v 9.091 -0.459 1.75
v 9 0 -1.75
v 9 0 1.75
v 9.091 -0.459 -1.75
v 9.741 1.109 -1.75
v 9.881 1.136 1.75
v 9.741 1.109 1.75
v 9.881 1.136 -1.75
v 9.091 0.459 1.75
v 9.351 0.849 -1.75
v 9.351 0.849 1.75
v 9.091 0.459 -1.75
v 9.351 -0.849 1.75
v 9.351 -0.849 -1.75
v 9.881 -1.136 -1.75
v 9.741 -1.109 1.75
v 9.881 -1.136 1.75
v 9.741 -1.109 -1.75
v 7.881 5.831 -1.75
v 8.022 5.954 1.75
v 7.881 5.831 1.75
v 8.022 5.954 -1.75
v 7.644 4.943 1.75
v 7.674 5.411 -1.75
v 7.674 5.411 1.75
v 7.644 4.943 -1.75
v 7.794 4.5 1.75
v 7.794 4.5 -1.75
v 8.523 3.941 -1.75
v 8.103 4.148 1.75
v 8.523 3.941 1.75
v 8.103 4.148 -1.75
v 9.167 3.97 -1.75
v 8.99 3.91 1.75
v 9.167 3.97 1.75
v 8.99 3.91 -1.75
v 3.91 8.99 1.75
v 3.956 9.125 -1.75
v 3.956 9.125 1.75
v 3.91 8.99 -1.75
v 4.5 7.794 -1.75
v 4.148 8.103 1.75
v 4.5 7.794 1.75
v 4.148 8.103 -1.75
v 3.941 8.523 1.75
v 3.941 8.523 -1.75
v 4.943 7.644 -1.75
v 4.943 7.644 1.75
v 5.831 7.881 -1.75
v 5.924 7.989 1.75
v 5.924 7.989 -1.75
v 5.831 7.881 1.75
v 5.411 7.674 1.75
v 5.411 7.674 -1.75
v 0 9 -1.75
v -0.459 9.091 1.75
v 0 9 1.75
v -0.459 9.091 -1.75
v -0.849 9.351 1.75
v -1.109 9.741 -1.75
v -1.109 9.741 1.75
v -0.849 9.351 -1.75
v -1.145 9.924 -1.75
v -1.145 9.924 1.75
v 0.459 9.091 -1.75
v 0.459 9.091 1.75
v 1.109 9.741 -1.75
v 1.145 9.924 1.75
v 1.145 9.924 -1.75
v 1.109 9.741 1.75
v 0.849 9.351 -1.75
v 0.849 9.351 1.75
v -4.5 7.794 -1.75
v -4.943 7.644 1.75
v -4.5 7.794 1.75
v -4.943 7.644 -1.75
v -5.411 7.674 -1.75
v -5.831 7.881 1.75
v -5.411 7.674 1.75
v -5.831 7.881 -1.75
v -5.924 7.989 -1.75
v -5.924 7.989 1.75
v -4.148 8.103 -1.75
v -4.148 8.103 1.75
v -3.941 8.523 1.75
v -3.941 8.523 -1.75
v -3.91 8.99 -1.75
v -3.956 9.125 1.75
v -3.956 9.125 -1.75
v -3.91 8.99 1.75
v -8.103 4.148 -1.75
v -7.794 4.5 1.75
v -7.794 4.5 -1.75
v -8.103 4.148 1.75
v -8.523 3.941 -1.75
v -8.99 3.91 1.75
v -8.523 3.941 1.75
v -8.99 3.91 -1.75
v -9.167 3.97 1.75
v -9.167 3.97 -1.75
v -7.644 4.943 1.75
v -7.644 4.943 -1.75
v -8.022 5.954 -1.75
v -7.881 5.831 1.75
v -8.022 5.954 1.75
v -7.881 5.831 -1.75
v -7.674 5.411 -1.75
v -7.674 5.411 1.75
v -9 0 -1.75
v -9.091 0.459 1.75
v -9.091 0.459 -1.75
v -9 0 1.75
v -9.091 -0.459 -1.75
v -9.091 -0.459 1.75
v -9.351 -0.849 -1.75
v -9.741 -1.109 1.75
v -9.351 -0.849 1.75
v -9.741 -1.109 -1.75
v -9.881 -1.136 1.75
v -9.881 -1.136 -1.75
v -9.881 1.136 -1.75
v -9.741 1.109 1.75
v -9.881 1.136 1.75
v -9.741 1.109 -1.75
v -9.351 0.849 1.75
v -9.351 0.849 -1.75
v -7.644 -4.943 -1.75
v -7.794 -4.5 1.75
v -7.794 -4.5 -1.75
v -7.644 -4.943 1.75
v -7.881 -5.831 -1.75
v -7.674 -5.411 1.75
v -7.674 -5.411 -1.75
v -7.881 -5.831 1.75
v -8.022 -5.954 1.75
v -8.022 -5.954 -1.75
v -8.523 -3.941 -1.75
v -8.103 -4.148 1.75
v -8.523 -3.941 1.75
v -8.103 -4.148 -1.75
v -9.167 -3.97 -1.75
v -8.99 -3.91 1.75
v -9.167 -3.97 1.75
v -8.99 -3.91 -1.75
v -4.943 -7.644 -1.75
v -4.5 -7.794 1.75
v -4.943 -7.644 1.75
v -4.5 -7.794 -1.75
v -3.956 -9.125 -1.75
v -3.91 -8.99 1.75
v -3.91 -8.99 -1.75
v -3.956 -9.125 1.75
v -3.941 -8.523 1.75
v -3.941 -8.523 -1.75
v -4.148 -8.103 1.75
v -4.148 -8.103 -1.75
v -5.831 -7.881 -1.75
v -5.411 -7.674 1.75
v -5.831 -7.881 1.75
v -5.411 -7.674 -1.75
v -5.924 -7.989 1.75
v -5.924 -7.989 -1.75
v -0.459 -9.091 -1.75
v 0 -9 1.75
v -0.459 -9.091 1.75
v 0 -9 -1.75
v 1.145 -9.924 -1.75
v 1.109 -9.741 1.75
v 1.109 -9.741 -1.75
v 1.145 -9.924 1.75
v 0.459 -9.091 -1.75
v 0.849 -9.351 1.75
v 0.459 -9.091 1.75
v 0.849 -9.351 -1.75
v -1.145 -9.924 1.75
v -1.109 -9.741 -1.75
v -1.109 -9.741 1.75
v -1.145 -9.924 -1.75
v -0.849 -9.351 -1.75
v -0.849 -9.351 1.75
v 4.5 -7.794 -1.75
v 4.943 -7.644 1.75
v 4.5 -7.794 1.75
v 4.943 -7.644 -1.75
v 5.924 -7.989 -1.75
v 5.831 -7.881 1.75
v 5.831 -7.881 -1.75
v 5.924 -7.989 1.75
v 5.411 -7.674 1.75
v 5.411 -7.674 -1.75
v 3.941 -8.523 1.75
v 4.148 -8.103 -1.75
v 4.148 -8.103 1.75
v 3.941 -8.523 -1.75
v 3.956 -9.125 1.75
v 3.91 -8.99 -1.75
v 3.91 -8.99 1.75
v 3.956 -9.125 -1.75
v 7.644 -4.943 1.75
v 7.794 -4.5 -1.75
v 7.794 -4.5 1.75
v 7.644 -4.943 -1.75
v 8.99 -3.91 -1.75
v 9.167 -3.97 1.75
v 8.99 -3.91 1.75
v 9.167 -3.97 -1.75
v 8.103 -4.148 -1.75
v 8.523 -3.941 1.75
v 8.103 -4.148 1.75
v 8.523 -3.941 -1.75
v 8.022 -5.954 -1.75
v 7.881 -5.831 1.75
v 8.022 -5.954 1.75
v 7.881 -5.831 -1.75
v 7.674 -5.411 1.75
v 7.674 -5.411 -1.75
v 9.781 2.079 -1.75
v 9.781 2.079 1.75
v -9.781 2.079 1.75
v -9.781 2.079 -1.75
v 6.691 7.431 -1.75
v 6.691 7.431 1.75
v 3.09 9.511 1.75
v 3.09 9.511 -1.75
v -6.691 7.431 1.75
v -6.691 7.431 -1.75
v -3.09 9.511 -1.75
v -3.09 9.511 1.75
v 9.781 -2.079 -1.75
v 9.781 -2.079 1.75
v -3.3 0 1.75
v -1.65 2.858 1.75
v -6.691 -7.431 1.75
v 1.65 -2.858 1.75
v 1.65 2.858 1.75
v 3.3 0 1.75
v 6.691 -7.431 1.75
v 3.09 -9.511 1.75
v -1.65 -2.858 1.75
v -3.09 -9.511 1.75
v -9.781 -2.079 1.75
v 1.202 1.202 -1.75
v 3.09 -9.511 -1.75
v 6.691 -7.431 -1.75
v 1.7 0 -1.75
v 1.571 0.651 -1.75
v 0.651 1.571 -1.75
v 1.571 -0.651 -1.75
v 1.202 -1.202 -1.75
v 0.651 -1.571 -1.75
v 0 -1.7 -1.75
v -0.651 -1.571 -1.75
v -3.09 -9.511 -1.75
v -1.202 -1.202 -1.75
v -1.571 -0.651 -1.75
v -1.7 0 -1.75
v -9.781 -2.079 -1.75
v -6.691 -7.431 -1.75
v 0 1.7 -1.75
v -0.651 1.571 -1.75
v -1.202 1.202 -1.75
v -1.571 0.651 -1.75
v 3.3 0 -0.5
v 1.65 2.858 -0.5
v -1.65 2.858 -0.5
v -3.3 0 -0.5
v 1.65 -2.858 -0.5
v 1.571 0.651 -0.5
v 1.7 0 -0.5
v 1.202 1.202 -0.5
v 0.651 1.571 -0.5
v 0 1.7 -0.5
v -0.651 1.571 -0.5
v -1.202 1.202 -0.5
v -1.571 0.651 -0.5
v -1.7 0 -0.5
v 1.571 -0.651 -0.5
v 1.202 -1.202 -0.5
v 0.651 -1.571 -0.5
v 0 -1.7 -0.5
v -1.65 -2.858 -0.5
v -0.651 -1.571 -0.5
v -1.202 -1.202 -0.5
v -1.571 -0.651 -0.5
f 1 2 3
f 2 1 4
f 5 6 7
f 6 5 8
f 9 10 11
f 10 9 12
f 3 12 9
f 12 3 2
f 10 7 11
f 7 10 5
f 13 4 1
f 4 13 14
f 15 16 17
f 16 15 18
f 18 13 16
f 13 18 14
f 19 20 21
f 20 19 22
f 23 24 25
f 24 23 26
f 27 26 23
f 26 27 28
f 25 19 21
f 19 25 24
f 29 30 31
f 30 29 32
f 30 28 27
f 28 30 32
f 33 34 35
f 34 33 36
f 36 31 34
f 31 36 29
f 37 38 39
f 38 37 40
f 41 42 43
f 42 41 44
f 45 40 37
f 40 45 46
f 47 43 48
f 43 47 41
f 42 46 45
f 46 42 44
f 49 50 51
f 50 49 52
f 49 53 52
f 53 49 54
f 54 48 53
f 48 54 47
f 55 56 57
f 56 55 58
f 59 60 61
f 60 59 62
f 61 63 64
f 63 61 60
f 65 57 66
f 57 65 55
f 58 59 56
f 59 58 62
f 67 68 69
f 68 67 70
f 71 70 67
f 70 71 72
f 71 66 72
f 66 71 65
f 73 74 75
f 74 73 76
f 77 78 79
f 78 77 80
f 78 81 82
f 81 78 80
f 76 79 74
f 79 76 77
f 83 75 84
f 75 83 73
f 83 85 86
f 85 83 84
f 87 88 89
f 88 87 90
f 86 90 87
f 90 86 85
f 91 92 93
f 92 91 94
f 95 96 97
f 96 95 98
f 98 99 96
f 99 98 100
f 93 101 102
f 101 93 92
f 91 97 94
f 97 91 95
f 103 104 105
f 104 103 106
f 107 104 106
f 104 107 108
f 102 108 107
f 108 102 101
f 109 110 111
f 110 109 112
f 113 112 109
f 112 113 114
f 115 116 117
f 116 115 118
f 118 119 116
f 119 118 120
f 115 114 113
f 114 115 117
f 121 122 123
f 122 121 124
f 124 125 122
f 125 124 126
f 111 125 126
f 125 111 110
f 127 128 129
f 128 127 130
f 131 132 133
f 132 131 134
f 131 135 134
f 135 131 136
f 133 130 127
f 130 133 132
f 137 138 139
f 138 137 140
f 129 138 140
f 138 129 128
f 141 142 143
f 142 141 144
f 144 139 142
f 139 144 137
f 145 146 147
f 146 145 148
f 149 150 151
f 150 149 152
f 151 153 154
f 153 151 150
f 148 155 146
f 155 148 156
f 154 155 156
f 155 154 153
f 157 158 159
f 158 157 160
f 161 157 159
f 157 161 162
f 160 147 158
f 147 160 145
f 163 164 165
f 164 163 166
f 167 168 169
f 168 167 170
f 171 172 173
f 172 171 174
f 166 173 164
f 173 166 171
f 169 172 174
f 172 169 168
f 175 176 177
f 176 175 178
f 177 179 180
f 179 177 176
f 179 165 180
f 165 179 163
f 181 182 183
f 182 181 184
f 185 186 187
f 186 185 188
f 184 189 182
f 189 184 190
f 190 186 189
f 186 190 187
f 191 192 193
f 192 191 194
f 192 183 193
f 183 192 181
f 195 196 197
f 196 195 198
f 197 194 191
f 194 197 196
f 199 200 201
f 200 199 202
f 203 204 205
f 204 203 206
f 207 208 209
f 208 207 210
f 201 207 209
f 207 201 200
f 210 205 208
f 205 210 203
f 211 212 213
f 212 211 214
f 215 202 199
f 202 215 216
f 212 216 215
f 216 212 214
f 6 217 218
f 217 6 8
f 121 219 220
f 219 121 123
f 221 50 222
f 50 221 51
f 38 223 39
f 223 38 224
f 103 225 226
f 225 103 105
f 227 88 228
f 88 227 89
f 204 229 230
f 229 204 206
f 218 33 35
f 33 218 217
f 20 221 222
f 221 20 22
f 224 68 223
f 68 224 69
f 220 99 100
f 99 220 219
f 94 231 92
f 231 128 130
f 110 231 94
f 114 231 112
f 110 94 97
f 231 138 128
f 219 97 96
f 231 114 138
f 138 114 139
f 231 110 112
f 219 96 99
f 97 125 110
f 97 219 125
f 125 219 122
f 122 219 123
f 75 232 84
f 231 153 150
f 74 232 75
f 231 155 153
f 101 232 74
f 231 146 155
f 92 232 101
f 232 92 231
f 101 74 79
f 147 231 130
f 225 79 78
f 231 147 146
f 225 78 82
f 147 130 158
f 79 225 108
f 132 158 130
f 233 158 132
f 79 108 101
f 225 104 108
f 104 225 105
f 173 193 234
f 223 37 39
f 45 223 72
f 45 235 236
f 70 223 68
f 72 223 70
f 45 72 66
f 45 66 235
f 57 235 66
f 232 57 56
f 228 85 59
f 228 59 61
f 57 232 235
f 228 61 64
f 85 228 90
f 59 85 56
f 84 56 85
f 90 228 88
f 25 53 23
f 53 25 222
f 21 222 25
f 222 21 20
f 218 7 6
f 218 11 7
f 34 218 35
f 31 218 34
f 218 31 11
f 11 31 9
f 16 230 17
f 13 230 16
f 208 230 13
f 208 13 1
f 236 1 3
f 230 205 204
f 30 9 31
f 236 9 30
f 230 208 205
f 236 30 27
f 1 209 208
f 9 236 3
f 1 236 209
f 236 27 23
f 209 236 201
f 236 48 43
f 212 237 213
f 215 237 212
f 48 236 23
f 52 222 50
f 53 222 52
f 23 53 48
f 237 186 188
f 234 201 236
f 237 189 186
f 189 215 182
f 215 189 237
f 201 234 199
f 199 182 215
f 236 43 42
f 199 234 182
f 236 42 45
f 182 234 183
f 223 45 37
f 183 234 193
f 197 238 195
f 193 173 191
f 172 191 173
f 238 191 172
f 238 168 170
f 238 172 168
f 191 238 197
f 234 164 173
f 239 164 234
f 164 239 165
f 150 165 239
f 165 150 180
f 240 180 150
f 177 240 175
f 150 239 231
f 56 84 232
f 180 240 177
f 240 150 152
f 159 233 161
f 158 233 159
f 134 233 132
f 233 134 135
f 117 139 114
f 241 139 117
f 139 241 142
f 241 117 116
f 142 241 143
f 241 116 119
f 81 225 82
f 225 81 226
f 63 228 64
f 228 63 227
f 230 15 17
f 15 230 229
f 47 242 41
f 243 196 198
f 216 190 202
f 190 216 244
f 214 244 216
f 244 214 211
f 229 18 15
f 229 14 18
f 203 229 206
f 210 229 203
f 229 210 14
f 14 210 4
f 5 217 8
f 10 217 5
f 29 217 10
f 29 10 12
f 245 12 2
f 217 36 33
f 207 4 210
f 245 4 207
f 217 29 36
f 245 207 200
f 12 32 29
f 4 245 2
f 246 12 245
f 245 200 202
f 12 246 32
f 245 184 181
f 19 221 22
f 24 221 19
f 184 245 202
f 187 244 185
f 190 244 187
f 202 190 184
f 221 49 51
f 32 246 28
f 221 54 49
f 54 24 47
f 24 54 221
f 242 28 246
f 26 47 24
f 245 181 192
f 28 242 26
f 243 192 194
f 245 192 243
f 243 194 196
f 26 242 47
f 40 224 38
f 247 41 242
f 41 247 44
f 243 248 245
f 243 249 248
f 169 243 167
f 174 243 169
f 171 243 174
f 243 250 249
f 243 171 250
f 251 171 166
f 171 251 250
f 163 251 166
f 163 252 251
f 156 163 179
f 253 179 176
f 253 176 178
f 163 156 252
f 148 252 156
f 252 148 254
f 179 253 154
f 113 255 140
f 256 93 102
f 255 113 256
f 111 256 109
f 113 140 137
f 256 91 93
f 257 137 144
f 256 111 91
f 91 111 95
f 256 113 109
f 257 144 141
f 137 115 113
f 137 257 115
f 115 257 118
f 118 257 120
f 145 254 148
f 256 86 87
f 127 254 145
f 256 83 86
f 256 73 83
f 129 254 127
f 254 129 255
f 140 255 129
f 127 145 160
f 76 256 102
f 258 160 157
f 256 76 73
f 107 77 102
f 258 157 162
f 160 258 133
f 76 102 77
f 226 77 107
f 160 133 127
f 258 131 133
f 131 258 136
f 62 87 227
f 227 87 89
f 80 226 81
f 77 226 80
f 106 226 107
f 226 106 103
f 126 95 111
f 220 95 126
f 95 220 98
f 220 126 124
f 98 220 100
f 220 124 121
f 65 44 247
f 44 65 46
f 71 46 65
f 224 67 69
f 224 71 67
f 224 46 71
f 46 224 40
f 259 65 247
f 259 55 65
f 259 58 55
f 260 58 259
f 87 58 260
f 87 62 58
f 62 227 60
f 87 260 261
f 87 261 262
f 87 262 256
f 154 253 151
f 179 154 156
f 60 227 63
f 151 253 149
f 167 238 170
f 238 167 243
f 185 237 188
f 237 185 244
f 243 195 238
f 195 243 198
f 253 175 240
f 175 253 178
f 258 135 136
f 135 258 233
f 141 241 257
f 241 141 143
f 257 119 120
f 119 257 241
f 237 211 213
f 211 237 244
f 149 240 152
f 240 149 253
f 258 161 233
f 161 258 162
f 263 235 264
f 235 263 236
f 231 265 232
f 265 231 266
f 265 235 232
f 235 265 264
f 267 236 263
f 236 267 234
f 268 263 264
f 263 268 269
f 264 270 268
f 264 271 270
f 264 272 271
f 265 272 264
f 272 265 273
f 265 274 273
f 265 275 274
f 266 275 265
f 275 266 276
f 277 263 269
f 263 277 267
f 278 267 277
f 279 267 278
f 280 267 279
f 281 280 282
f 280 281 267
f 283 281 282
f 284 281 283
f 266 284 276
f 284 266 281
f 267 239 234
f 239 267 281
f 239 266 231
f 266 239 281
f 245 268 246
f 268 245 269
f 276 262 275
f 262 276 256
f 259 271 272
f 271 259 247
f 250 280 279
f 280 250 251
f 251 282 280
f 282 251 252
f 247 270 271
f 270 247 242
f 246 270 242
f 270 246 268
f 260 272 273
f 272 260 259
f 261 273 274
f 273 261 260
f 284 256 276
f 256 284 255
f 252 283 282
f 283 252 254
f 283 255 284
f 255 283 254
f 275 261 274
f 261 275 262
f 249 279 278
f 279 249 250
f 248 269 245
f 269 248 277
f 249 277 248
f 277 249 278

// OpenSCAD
// file: ../configuration.scad
/*
	Konfiguracni soubor 3D tiskarny RebeliX X2
	
	Sledujte nas na:		  
			www.RepRap4U.cz
			www.facebook.com/RebeliX.cz
			https://twitter.com/reprap4u
			https://plus.google.com/+Reprap4uCz-3Dtiskarna-RebeliX
*/

/*================ Slic3r nastaveni ==========================*/

// Vyska vrstvy pro tisknuti dilu [mm]
layer_height = 0.3;

// Sirka vytlacovaneho materialu [mm]
extrusion_width = 0.66; //Slic3r->Print Settings->Advanced->Default extrusion width

/*==================== M6 sroub ==============================*/

// Rezerva prumeru hlavy sroubu [mm]
space = 1;

// Prumer hlavy M6 sroubu (pricte se rezerva) [mm]
M6_head_diameter = 10.6+space;
//M6_head_diameter = 12+space;

// Prumer M6 sroubu
M6_dia = 6.3;

// Vyska hlavy M6 sroubu (dulezite pro zapusteni hlavy sroubu do plastu) [mm]
M6_head_height = 3.6;
//M6_head_height = 4.5;

// Delka sroubu M6 [mm]
// M6x12
M6_lenght = 12;

// Sirka matky do profilu (pokud neni pouzita, tak 0)
//profile_nut_width = 9.5;
profile_nut_width = 0;

/*=================== Nastaveni dilu =========================*/

// Posun Z zakladny
z_base_offset = 11;

// Tloustka rohovych spojek
// 5 mm => sroub M6x14 s podlozkou
// 3 mm => sroub M6x12 s podlozkou
coupler_thickness = 3;

// Prumer 8mm tyce
rod_8mm_d = 8.2;

// Posun drzacku mezi x-motor a x-end
x_holder_position = 6.5;

// ALU profile hole width
alu_hole_width = 8;

/*======================== Motory ============================*/

// Delka motoru (ovlivni dily a delky tyci pro osy Z a Y)
//SX17-1003LQFE (doporuceno hlavne na osu Z)
motor_length = 29.5;
//SX17-1003 (doporuceno hlavne na osu Z), SX17-0503LQEF
//motor_length = 34;
//SX17-1005
//motor_length = 40;
//SX17-0905 - zde je jiz problem s velkou vyskou motoru na ose Z - musi se upravit endstop-holder
//motor_length = 48;

/*================ Remeny a remenicky ========================*/

// GT2 
belt_tooth_distance = 2;
belt_tooth_ratio = 0.5;

// T2.5
//belt_tooth_distance = 2.5;
//belt_tooth_ratio = 0.68;
// main file
// RebeliX
//
// heatbed-nut
// GNU GPL v3
// Martin Neruda <neruda@reprap4u.cz>
// http://www.reprap4u.cz

include <../configuration.scad>

// Prumer celeho drzadla
diameter = 20;
// Prumer zoubku na kole
tooth_diameter = 2.4;

difference(){
	cylinder(r=diameter/2,h=3.5, center=true);
	for ( i = [0 : 30 : 360] ){
	  rotate([0,0,i]){
		translate([diameter/2 + 0.2,0,0]) cylinder(r=tooth_diameter/2,h=6, $fn=16,center=true);
	  }
	}
	translate([0,0,-0.5]) cylinder(r=3.3,h=2.4,$fn=6);
	translate([0,0,0]) cylinder(r=1.7,h=10,$fn=16, center=true);
}	
